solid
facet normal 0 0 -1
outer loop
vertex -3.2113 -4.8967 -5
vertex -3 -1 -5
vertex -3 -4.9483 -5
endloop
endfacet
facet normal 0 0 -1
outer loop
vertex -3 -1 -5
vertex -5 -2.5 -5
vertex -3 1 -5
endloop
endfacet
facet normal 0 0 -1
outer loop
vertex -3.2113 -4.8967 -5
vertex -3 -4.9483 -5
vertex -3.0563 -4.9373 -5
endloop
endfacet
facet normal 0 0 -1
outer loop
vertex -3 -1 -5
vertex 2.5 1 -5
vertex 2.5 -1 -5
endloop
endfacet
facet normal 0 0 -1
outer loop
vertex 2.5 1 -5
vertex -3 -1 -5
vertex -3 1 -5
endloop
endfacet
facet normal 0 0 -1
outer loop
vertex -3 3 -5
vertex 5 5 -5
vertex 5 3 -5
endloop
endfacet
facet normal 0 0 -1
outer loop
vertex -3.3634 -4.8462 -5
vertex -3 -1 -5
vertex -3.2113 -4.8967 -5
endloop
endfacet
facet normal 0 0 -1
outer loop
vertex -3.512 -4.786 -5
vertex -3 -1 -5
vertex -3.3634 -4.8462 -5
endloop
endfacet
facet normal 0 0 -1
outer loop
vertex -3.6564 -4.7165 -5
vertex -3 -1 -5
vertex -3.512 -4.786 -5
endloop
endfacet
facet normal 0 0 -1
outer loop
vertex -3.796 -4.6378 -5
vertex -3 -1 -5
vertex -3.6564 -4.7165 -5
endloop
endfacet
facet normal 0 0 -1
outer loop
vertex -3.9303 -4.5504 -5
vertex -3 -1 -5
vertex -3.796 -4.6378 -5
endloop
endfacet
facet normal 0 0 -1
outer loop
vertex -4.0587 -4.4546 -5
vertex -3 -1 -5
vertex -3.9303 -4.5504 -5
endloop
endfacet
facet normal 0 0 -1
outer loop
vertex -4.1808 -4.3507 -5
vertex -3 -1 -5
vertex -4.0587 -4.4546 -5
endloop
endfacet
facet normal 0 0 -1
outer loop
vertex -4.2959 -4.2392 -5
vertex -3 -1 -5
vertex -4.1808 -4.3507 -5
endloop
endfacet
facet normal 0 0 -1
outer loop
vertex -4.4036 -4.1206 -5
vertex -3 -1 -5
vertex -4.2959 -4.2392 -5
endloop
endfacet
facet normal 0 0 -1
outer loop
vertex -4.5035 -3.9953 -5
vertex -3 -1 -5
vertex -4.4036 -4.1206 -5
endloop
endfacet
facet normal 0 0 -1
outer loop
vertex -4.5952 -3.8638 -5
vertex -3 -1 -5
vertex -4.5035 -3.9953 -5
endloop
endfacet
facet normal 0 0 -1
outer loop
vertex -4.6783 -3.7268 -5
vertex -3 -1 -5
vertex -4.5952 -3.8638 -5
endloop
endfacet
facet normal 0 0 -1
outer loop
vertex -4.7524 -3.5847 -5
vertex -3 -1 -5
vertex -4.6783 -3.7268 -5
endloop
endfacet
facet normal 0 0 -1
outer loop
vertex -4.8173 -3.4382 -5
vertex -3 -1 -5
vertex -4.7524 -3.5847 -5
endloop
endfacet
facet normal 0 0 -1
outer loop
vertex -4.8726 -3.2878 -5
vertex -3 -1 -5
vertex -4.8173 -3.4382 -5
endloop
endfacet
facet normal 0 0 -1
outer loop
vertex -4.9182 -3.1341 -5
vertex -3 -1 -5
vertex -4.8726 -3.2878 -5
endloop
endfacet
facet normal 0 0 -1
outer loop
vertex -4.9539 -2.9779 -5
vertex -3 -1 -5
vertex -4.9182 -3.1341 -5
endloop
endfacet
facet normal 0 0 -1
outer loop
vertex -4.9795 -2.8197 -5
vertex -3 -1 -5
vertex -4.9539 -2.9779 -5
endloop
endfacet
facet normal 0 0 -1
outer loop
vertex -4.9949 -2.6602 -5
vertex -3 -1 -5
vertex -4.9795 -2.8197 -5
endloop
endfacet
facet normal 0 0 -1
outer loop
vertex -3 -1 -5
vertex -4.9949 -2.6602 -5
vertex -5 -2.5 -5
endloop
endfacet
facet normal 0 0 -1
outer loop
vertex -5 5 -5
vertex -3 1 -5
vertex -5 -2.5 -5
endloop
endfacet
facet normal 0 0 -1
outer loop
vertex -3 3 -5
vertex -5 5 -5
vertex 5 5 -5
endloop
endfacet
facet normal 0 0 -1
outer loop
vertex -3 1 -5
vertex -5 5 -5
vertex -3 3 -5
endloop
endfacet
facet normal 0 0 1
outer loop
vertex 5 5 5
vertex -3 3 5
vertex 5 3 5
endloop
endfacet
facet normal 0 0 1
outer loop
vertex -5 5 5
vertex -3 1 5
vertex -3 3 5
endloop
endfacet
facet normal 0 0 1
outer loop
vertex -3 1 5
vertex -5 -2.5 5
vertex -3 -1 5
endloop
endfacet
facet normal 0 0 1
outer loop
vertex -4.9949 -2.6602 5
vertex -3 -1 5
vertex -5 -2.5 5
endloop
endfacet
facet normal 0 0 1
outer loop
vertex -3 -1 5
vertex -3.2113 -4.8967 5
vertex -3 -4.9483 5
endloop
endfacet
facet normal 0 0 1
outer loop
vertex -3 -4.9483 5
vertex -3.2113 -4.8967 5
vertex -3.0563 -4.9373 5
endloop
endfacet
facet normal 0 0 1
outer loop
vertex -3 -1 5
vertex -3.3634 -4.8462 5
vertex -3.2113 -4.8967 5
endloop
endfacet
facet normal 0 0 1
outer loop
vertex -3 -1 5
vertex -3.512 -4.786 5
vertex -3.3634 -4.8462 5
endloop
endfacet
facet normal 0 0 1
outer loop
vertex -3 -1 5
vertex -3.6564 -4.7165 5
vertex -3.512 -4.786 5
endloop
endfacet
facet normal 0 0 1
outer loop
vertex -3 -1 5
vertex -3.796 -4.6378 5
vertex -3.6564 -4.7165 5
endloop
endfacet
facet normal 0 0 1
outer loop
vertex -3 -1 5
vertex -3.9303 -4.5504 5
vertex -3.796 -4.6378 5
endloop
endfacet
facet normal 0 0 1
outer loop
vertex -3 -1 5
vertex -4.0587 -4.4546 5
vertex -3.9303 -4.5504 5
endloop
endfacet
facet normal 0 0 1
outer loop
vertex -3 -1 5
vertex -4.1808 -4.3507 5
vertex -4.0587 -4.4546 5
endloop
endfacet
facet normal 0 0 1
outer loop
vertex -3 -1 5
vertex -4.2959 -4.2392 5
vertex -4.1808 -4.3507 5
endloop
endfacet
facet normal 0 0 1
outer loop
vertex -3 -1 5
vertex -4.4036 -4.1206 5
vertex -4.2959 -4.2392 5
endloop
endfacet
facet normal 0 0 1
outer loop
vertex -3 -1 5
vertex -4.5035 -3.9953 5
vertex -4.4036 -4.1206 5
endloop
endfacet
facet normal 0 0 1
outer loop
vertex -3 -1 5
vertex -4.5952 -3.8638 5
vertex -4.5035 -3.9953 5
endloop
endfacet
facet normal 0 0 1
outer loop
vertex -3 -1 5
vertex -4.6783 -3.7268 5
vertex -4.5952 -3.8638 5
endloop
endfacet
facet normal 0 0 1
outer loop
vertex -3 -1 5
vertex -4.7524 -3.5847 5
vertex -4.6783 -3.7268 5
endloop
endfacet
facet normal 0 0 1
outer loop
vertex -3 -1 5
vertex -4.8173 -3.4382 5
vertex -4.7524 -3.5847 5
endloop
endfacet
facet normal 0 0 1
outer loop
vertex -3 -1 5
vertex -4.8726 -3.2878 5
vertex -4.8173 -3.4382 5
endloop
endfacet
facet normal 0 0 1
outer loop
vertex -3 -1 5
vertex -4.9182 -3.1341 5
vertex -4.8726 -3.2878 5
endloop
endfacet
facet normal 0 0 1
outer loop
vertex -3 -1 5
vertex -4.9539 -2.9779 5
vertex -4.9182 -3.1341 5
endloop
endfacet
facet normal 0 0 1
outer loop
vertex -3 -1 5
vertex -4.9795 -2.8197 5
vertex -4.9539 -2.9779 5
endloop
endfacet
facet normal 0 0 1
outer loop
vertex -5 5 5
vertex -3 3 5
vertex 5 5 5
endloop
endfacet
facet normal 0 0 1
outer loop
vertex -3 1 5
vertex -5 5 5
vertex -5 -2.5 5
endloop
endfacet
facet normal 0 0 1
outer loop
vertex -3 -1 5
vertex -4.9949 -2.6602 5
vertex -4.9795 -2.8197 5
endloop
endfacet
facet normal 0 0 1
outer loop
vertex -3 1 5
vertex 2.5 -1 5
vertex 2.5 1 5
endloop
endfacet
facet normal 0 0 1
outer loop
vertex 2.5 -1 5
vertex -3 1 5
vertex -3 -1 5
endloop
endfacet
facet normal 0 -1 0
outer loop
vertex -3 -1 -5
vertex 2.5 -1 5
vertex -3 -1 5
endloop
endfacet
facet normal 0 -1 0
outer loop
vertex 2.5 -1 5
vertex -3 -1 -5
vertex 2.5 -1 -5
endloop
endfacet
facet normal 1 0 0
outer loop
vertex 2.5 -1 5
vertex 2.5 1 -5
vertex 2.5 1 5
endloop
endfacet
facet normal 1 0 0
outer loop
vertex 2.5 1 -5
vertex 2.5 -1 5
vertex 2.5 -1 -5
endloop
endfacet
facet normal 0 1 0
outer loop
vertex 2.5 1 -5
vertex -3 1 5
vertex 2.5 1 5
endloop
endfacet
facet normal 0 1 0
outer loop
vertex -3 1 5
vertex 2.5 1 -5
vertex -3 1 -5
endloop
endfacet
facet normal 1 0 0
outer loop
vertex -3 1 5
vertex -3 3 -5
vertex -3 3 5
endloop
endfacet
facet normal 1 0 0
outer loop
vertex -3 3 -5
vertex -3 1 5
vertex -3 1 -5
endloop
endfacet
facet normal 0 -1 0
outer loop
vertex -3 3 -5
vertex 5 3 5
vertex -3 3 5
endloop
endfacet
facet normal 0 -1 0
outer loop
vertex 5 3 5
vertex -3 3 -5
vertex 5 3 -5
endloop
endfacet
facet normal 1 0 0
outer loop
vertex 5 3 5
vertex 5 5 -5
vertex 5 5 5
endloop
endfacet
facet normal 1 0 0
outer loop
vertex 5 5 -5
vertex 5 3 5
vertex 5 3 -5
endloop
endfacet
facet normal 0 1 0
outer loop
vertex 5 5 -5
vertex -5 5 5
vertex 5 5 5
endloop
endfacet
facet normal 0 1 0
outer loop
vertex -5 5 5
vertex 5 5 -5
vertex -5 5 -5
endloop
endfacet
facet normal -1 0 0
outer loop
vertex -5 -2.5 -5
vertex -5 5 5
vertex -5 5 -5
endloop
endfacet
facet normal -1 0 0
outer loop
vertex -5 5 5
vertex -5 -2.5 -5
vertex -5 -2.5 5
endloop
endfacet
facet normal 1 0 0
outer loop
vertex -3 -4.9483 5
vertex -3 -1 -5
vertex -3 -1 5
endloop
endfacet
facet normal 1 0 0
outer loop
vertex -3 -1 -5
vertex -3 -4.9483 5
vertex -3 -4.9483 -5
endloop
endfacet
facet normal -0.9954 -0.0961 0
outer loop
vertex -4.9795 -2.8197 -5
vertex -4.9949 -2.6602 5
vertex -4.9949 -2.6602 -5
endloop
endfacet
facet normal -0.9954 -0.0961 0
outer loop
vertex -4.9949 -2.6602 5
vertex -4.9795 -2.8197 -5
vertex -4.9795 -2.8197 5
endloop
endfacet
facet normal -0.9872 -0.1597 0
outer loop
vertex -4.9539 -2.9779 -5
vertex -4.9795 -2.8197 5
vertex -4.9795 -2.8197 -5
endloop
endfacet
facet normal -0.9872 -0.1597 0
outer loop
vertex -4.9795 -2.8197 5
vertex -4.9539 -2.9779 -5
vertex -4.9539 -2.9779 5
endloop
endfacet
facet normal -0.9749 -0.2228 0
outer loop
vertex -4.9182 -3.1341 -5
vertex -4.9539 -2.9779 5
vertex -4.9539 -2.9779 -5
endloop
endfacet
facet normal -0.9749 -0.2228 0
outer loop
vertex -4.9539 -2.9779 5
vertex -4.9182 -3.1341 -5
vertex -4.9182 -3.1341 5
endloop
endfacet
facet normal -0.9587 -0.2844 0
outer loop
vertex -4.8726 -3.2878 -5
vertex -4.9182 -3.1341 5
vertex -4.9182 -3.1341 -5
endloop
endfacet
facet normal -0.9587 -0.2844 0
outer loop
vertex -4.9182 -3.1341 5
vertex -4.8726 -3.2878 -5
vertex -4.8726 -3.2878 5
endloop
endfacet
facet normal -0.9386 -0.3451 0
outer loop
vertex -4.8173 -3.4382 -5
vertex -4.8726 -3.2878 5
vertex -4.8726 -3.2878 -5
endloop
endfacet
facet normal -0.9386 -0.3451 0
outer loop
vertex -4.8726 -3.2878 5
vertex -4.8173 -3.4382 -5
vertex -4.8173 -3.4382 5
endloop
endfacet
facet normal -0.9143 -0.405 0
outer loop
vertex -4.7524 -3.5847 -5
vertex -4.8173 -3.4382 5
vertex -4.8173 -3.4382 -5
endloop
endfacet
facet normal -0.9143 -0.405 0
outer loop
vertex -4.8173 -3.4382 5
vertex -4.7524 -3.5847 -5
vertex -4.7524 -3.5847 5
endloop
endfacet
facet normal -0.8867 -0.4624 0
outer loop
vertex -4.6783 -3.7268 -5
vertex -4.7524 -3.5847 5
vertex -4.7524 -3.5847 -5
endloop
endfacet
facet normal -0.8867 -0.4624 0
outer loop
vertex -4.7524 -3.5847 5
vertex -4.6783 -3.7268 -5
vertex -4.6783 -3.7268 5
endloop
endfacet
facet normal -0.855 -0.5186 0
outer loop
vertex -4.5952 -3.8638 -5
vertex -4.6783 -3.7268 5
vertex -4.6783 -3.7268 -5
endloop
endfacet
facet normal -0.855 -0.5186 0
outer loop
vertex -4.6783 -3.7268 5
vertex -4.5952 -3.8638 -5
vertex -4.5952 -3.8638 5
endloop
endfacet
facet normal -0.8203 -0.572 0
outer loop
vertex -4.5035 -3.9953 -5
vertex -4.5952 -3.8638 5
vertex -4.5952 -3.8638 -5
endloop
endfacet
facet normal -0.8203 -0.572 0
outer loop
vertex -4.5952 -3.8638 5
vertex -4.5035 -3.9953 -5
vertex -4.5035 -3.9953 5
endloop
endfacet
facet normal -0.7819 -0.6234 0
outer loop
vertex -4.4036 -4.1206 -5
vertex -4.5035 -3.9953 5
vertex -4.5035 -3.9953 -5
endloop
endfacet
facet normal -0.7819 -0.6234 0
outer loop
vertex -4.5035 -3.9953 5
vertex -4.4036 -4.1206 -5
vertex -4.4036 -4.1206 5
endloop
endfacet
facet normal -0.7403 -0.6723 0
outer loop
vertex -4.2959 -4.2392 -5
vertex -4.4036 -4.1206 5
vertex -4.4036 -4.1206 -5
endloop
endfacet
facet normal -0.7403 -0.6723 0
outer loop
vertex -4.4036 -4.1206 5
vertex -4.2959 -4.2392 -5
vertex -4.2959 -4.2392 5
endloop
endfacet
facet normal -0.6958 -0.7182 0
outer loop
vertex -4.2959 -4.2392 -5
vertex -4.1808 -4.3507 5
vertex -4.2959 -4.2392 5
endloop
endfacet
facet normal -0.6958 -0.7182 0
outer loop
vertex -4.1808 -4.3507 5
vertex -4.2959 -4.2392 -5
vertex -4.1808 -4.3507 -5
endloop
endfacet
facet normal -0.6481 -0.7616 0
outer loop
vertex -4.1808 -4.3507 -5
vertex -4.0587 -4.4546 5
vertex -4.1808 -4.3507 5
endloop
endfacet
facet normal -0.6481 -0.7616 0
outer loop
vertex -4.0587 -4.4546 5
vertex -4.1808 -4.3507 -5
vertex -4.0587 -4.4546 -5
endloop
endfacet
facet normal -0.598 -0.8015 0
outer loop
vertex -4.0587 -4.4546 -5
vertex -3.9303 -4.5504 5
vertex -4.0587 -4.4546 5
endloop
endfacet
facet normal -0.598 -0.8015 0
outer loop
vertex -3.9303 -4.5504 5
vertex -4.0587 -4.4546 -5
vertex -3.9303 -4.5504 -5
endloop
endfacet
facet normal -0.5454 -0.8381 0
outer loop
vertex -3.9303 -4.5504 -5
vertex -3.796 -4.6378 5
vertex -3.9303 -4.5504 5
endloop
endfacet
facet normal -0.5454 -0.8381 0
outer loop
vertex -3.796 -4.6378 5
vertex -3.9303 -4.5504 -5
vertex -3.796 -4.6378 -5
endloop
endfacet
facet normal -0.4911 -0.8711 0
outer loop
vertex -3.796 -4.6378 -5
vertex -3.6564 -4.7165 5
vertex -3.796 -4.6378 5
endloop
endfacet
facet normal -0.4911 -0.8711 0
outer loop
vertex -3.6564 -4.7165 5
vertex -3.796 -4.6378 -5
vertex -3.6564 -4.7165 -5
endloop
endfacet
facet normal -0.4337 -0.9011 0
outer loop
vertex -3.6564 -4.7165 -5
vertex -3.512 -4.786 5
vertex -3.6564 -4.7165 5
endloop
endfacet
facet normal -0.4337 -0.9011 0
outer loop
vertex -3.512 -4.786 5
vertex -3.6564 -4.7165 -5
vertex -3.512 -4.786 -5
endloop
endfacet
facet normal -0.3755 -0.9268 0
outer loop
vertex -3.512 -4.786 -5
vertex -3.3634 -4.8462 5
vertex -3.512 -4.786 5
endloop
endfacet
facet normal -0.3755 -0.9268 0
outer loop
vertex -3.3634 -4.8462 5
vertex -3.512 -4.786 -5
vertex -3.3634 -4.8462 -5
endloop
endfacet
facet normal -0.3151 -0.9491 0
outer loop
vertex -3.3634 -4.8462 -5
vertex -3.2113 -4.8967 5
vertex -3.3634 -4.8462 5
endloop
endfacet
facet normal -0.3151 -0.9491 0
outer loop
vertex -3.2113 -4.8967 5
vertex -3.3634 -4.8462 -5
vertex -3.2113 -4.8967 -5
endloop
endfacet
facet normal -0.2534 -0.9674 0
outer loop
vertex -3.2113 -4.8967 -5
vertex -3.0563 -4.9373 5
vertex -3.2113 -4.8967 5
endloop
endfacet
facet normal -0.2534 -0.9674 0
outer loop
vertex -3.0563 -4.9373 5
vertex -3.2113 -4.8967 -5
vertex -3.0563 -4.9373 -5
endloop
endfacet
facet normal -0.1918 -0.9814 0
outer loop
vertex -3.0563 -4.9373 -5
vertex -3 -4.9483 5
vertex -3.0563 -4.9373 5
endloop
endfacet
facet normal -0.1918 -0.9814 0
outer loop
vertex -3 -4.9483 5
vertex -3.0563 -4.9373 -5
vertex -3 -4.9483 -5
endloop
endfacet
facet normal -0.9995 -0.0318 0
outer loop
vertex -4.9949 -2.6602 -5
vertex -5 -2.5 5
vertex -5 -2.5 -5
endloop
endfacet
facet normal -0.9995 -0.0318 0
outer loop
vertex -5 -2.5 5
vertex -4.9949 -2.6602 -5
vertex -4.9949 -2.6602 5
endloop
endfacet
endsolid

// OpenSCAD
// Generated by SolidPython 1.1.3 on 2025-02-20 04:04:12
$fn=50;


intersection() {
	translate(v = [-5.0000000000, -5.0000000000, -5.0000000000]) {
		linear_extrude(height = 10) {
			polygon(points = [[0, 0], [2.0000000000, 0], [2.0000000000, 4.0000000000], [7.5000000000, 4.0000000000], [7.5000000000, 6.0000000000], [2.0000000000, 6.0000000000], [2.0000000000, 8.0000000000], [10, 8.0000000000], [10, 10], [0, 10]]);
		}
	}
	rotate(a = -90, v = [0, 0, 1]) {
		translate(v = [-5.0000000000, -5.0000000000, -5.0000000000]) {
			linear_extrude(height = 10) {
				polygon(points = [[7.5000000000, 10.0000000000], [7.6601755500, 9.9948634819], [7.8196929042, 9.9794750346], [7.9778965718, 9.9538978925], [8.1341364598, 9.9182371576], [8.2877705451, 9.8726393675], [8.4381675122, 9.8172918934], [8.5847093478, 9.7524221698], [8.7267938800, 9.6782967603], [8.8638372530, 9.5952202622], [8.9952763262, 9.5035340547], [9.1205709883, 9.4036148959], [9.2392063765, 9.2958733752], [9.3506949927, 9.1807522257], [9.4545787062, 9.0587245046], [9.5504306365, 8.9302916503], [9.6378569075, 8.7959814208], [9.7164982659, 8.6563457256], [9.7860315575, 8.5119583578], [9.8461710551, 8.3634126361], [9.8966696326, 8.2113189666], [9.9373197805, 8.0563023349], [9.9679544585, 7.8989997376], [9.9884477824, 7.7400575648], [9.9987155405, 7.5801289439], [9.9987155405, 7.4198710561], [9.9884477824, 7.2599424352], [9.9679544585, 7.1010002624], [9.9373197805, 6.9436976651], [9.8966696326, 6.7886810334], [9.8461710551, 6.6365873639], [9.7860315575, 6.4880416422], [9.7164982659, 6.3436542744], [9.6378569075, 6.2040185792], [9.5504306365, 6.0697083497], [9.4545787062, 5.9412754954], [9.3506949927, 5.8192477743], [9.2392063765, 5.7041266248], [9.1205709883, 5.5963851041], [8.9952763262, 5.4964659453], [8.8638372530, 5.4047797378], [8.7267938800, 5.3217032397], [8.5847093478, 5.2475778302], [8.4381675122, 5.1827081066], [8.2877705451, 5.1273606325], [8.1341364598, 5.0817628424], [7.9778965718, 5.0461021075], [7.8196929042, 5.0205249654], [7.6601755500, 5.0051365181], [7.5000000000, 5.0000000000], [7.5000000000, 5.0000000000], [7.6601755500, 4.9948634819], [7.8196929042, 4.9794750346], [7.9778965718, 4.9538978925], [8.1341364598, 4.9182371576], [8.2877705451, 4.8726393675], [8.4381675122, 4.8172918934], [8.5847093478, 4.7524221698], [8.7267938800, 4.6782967603], [8.8638372530, 4.5952202622], [8.9952763262, 4.5035340547], [9.1205709883, 4.4036148959], [9.2392063765, 4.2958733752], [9.3506949927, 4.1807522257], [9.4545787062, 4.0587245046], [9.5504306365, 3.9302916503], [9.6378569075, 3.7959814208], [9.7164982659, 3.6563457256], [9.7860315575, 3.5119583578], [9.8461710551, 3.3634126361], [9.8966696326, 3.2113189666], [9.9373197805, 3.0563023349], [9.9679544585, 2.8989997376], [9.9884477824, 2.7400575648], [9.9987155405, 2.5801289439], [9.9987155405, 2.4198710561], [9.9884477824, 2.2599424352], [9.9679544585, 2.1010002624], [9.9373197805, 1.9436976651], [9.8966696326, 1.7886810334], [9.8461710551, 1.6365873639], [9.7860315575, 1.4880416422], [9.7164982659, 1.3436542744], [9.6378569075, 1.2040185792], [9.5504306365, 1.0697083497], [9.4545787062, 0.9412754954], [9.3506949927, 0.8192477743], [9.2392063765, 0.7041266248], [9.1205709883, 0.5963851041], [8.9952763262, 0.4964659453], [8.8638372530, 0.4047797378], [8.7267938800, 0.3217032397], [8.5847093478, 0.2475778302], [8.4381675122, 0.1827081066], [8.2877705451, 0.1273606325], [8.1341364598, 0.0817628424], [7.9778965718, 0.0461021075], [7.8196929042, 0.0205249654], [7.6601755500, 0.0051365181], [7.5000000000, 0.0000000000], [0, 0], [0, 10]]);
			}
		}
	}
}
/***********************************************
*********      SolidPython code:      **********
************************************************
 
from solid import *
from solid.utils import *

import math
import matplotlib.pyplot as plt
import subprocess
import os

class Hole:
    def __init__(self, x, y, radius):
        """
        Hole defined by:
        :param x: x dimension for center point of the circle as a ratio of letter height
        :param y: y dimension for center point of the circle as a ratio of letter height
        :param radius: radius of circle as a ratio of letter height
        """
        self.x = x
        self.y = y
        self.radius = radius

class Letter3D:
    def __init__(self, name, outer_shape_points, height, holes=None):
        """
        3D Letter defined by:
        :param name: name of letter
        :param outer_shape_points: points defining the outer shape of the letter
        :param heigh: size of cube that letter fits inside
        :param holes: list of Holes
        """
        self.name = name
        self.outer_shape_points = outer_shape_points
        self.holes = holes if holes is None else []
        self.height = height


    def generate(self):
        shape = polygon(points=self.outer_shape_points)

        if self.holes:
            for hole in self.holes:
                circle_hole = circle(r=hole.radius*self.height)
                positioned_hole = translate([hole.x*self.height, hole.y*self.height])(circle_hole)
                shape = difference()(shape, positioned_hole)
        
        shape_3d = linear_extrude(height=self.height)(shape)
        shape_3d = translate([-self.height/2, -self.height/2, -self.height/2])(shape_3d)
        return shape_3d
    
    def render(self):
        scad_render_to_file(self.shape, f"output/{self.name}.scad", file_header='$fn=50;')
        subprocess.run(["C:\\Program Files\\OpenSCAD\\openscad.exe", "-o", f"output\\{self.name}.stl", f"output\\{self.name}.scad"])


class TwoLetter3D:
    def __init__(self, height, letterA, letterA_face, letterB=None, letterB_face=None):
        self.height = height
        self.letterA = letterA
        self.letterB = letterB
        self.letterA_face = letterA_face
        self.letterB_face = letterB_face

    def call_letter_generation(self, letter):
        letter = letter.upper()
        function_name = f"letter_{letter}"
        func = globals().get(function_name)
        if func is None:
            raise ValueError(f"No letter generation function defined for letter '{letter}'.")
        else:
            print(func)
        return func(self.height)
    
    def rotate_object(self, face, shape):
        face = face.lower()
        if face == "z":
            return shape
        if face == "x":
            return rotate(a=90, v=[0,1,0])(shape)
        if face == "y":
            return rotate(a=-90, v=[0,0,1])(shape)
        else:
            raise ValueError("Face must be one of 'x', 'y', or 'z'.")

    def render(self):
        if self.letterA:
            letterA3D = self.call_letter_generation(self.letterA)
            letterA3D = self.rotate_object(self.letterA_face, letterA3D)

        if self.letterB:
            letterB3D = self.call_letter_generation(self.letterB)
            letterB3D = self.rotate_object(self.letterB_face, letterB3D)
            combined = intersection()(letterA3D, letterB3D)
            file_name = self.letterA + self.letterB
            scad_render_to_file(combined, f"output/{file_name}.scad", file_header='$fn=50;')
            subprocess.run(["C:\\Program Files\\OpenSCAD\\openscad.exe", "-o", f"output\\{file_name}.stl", f"output\\{file_name}.scad"])
            return
        else:
            file_name = self.letterA
            scad_render_to_file(letterA3D, f"output/{file_name}.scad", file_header='$fn=50;')
            subprocess.run(["C:\\Program Files\\OpenSCAD\\openscad.exe", "-o", f"output\\{file_name}.stl", f"output\\{file_name}.scad"])
    
                

def arc_points(radius, start_angle, end_angle, center=[0,0], num_points=50):
    angles = [start_angle + i * (end_angle - start_angle) / (num_points - 1)
              for i in range(num_points)]
    points = [
        (center[0] + radius * math.cos(math.radians(angle)),
         center[1] + radius * math.sin(math.radians(angle)))
        for angle in angles
    ]
    return points

def letter_A(h):
    shape_points = [(0,0), (h/2, h), (h, 0), (5/6*h, 0), (2/3*h, 1/3*h), (1/3*h, 1/3*h), (h/6, 0)]
    holes = [Hole(1/2, 7/12, 1/6)]
    A = Letter3D("A", shape_points, h, holes)
    return A.generate()

def letter_B(h):
    top_arc_points = arc_points(h/4, 90, -90, center=[3/4*h, 3/4*h])
    bottom_arc_points = arc_points(h/4, 90, -90, center=[3/4*h, h/4])
    other_points = [(0,0),(0,h)]

    shape_points = top_arc_points + bottom_arc_points + other_points
    holes = [Hole(1/2, 3/4, 1/6), Hole(1/2, 1/4, 1/6)]
    B = Letter3D("B", shape_points, h, holes)
    return B.generate()

def letter_C(h):
    outer_arc_points = arc_points(h/2, 30, 330, center=[h/2,h/2])
    inner_arc_points = arc_points(h/4, 30, 330, center=[h/2,h/2])[::-1]
    shape_points = outer_arc_points + inner_arc_points
    # print(shape_points)
    C = Letter3D("C", shape_points, h)
    return C.generate()


def letter_D(h):
    outer_arc_points = arc_points(h/2, 90, -90, center= [h/2, h/2])
    shape_points = outer_arc_points + [(0,0), (0, h)]
    holes = [Hole(1/2, 1/2, 1/6)]
    D = Letter3D("D", shape_points, h, holes)
    return D.generate()

def letter_E(h):
    points = [(0,0), (h,0), (h,h/5), (h/5,h/5), (h/5,2/5*h), (3/4*h,2/5*h), (3/4*h,3/5*h), (h/5,3/5*h), (h/5,4/5*h), (h,4/5*h), (h,h), (0,h)]
    E = Letter3D("E", points, h)
    return E.generate()

def letter_F(h):
    points = [(0,0), (h/5,0), (h/5,2/5*h), (3/4*h,2/5*h), (3/4*h,3/5*h), (h/5,3/5*h), (h/5,4/5*h), (h,4/5*h), (h,h), (0,h)]
    F = Letter3D("F", points, h)
    return F.generate()

if __name__ == "__main__":
    os.makedirs("output", exist_ok=True)
    # Generate all combos
    letters = [chr(x) for x in range(ord('A'), ord('F') + 1)]
    for letter in letters:
        for other_letter in letters:
            shape = TwoLetter3D(10, letter, "z", other_letter, "y")
            shape.render()
 
 
************************************************/
